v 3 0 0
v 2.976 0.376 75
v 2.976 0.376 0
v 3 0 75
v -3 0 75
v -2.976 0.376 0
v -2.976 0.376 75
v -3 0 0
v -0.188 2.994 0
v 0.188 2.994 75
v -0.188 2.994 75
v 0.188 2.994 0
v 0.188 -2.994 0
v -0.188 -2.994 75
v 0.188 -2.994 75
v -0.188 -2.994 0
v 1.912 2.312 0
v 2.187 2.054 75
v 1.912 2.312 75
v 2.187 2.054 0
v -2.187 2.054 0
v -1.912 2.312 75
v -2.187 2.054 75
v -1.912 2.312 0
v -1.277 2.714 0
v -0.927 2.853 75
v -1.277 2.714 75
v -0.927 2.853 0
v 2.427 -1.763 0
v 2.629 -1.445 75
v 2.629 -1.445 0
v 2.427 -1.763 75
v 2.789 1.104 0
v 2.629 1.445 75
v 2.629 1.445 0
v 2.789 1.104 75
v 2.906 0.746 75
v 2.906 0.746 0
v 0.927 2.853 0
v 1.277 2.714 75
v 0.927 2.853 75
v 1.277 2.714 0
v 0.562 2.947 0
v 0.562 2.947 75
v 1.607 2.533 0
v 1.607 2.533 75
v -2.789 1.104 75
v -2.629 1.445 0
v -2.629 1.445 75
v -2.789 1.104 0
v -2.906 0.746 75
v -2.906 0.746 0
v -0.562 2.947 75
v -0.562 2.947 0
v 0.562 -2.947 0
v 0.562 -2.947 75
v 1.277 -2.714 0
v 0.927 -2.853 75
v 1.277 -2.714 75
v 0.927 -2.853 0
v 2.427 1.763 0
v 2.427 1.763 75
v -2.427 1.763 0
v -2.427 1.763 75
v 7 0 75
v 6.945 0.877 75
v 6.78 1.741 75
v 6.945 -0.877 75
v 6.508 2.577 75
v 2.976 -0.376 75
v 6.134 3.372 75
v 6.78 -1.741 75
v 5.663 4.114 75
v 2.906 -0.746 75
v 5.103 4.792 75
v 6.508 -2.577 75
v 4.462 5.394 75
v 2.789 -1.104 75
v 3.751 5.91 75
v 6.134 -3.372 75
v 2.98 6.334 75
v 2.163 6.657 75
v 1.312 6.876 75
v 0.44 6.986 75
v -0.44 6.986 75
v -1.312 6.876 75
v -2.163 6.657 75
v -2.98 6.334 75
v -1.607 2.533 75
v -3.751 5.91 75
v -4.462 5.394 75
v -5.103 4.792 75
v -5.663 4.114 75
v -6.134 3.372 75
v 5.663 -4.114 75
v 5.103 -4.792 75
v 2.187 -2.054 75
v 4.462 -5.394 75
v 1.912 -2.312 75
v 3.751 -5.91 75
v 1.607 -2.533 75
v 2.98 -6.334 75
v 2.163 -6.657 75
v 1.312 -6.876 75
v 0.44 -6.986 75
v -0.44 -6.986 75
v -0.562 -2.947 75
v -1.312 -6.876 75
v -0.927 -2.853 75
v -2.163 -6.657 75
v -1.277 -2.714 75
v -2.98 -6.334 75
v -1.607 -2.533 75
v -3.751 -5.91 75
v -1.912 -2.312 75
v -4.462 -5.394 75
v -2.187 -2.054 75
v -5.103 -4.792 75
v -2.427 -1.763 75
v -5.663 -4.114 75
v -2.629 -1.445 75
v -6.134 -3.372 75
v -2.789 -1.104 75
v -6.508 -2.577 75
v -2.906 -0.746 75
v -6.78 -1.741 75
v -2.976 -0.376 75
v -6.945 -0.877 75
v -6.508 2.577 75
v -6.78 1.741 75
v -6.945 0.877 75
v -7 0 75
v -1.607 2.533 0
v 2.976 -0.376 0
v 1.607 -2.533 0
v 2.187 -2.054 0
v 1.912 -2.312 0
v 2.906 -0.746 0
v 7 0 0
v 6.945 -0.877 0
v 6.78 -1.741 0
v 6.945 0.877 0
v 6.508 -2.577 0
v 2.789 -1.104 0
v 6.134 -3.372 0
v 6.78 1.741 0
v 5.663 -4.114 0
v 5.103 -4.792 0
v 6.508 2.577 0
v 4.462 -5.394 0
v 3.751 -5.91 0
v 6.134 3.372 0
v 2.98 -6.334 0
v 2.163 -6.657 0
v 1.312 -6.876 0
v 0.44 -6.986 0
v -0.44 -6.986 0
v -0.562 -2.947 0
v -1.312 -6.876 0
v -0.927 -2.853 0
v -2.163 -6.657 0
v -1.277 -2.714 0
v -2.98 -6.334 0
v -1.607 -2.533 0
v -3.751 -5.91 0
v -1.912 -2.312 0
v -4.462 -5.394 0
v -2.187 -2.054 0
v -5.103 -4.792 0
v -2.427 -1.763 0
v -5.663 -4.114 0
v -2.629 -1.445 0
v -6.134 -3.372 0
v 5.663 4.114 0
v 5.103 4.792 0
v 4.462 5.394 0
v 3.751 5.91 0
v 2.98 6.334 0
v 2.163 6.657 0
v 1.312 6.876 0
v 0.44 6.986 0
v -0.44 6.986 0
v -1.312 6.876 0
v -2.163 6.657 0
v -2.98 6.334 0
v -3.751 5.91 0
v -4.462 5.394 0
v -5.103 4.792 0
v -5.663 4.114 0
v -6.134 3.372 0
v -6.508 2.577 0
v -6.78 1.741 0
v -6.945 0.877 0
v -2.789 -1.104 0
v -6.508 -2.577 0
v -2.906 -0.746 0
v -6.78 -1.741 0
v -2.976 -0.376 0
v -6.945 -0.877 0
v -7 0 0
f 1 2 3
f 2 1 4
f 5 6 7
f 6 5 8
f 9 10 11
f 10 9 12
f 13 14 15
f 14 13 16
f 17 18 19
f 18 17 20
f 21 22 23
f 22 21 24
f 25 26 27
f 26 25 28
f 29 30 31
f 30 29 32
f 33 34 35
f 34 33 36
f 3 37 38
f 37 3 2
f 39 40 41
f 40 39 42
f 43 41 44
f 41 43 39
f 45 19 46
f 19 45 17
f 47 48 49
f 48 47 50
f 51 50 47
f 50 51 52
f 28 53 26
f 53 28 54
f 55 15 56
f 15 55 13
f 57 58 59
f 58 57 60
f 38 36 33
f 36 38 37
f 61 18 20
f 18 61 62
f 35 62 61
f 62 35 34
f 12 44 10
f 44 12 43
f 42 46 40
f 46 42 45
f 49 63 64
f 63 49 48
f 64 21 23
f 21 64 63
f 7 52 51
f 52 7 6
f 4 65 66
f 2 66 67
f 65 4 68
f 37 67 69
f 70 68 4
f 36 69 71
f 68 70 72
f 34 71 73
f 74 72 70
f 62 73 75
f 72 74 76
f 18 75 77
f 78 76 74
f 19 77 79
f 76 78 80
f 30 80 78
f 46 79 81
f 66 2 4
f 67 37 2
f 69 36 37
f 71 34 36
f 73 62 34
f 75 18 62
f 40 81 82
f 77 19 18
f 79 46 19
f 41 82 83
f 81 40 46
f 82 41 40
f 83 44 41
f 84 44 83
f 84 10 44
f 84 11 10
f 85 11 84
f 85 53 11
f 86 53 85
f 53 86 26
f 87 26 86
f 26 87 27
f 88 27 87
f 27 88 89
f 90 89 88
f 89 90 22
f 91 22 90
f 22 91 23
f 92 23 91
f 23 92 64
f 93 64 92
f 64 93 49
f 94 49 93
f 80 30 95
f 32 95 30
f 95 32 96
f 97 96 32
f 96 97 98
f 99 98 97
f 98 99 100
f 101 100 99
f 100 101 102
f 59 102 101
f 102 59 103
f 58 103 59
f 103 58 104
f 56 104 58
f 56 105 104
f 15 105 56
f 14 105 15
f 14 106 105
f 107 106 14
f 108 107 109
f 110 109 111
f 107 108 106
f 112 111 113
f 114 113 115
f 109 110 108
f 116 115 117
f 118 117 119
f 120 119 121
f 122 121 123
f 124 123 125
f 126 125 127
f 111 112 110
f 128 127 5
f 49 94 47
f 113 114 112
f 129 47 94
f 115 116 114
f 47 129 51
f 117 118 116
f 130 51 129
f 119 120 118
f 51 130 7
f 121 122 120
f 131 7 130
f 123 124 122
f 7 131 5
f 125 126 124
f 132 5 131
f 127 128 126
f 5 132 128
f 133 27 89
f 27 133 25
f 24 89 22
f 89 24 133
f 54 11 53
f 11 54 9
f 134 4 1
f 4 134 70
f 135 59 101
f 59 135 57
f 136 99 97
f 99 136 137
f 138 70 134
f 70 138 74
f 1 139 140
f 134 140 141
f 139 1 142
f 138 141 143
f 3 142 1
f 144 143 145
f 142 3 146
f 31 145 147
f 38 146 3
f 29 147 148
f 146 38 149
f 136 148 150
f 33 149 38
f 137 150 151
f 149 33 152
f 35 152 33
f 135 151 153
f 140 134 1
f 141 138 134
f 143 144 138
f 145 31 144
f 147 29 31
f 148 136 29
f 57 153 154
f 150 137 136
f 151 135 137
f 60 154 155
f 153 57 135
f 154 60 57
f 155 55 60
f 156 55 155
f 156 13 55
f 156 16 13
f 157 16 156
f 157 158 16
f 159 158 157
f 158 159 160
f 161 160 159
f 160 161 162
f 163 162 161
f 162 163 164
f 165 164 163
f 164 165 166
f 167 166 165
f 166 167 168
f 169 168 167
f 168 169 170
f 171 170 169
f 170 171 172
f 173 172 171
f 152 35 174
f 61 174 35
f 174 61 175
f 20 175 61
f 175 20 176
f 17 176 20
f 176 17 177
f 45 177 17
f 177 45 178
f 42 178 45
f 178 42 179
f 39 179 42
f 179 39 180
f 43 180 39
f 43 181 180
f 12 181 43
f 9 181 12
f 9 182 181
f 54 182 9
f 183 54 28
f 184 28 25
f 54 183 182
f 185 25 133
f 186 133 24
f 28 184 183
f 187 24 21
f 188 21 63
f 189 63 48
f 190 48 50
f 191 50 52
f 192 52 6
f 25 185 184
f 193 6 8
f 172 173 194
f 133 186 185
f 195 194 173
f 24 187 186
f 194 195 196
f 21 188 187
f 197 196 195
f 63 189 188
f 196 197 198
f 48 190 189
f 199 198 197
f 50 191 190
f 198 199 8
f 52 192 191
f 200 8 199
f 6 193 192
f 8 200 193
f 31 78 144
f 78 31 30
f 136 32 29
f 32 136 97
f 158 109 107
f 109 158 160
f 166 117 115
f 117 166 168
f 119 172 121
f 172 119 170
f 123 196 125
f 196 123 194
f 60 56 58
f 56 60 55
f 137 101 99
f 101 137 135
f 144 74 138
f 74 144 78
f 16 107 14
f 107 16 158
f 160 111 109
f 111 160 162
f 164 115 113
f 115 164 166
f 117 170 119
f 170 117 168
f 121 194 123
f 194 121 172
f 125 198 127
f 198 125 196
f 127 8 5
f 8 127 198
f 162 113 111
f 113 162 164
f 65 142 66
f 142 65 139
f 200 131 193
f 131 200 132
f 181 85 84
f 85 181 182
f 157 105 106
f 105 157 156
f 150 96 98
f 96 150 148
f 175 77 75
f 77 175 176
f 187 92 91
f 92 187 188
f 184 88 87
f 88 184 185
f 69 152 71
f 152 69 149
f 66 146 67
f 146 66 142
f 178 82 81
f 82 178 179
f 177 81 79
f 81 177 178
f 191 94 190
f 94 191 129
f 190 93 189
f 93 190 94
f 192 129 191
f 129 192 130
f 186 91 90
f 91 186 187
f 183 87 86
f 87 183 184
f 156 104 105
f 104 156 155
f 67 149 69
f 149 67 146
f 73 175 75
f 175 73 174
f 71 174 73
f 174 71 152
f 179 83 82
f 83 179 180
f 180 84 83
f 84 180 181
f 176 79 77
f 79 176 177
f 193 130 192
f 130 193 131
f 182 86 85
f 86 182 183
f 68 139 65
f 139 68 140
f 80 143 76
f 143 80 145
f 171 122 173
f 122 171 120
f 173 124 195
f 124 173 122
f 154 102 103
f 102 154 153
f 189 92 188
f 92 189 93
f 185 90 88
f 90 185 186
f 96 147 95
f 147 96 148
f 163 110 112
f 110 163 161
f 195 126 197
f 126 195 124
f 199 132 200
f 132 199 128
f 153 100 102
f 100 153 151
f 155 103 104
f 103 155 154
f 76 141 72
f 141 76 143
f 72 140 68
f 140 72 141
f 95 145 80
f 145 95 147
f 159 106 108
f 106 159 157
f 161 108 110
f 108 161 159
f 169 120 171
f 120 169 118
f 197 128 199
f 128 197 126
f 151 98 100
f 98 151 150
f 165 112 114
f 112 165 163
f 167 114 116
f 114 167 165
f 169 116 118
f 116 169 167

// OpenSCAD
$fn = 50;


difference() {
	union() {
		cylinder(h = 75, r = 7.0000000000);
	}
	union() {
		translate(v = [0, 0, -100]) {
			cylinder(h = 200, r = 3.0000000000);
		}
		translate(v = [0, 0, -100]) {
			cylinder(h = 200, r = 1.5000000000);
		}
	}
}
